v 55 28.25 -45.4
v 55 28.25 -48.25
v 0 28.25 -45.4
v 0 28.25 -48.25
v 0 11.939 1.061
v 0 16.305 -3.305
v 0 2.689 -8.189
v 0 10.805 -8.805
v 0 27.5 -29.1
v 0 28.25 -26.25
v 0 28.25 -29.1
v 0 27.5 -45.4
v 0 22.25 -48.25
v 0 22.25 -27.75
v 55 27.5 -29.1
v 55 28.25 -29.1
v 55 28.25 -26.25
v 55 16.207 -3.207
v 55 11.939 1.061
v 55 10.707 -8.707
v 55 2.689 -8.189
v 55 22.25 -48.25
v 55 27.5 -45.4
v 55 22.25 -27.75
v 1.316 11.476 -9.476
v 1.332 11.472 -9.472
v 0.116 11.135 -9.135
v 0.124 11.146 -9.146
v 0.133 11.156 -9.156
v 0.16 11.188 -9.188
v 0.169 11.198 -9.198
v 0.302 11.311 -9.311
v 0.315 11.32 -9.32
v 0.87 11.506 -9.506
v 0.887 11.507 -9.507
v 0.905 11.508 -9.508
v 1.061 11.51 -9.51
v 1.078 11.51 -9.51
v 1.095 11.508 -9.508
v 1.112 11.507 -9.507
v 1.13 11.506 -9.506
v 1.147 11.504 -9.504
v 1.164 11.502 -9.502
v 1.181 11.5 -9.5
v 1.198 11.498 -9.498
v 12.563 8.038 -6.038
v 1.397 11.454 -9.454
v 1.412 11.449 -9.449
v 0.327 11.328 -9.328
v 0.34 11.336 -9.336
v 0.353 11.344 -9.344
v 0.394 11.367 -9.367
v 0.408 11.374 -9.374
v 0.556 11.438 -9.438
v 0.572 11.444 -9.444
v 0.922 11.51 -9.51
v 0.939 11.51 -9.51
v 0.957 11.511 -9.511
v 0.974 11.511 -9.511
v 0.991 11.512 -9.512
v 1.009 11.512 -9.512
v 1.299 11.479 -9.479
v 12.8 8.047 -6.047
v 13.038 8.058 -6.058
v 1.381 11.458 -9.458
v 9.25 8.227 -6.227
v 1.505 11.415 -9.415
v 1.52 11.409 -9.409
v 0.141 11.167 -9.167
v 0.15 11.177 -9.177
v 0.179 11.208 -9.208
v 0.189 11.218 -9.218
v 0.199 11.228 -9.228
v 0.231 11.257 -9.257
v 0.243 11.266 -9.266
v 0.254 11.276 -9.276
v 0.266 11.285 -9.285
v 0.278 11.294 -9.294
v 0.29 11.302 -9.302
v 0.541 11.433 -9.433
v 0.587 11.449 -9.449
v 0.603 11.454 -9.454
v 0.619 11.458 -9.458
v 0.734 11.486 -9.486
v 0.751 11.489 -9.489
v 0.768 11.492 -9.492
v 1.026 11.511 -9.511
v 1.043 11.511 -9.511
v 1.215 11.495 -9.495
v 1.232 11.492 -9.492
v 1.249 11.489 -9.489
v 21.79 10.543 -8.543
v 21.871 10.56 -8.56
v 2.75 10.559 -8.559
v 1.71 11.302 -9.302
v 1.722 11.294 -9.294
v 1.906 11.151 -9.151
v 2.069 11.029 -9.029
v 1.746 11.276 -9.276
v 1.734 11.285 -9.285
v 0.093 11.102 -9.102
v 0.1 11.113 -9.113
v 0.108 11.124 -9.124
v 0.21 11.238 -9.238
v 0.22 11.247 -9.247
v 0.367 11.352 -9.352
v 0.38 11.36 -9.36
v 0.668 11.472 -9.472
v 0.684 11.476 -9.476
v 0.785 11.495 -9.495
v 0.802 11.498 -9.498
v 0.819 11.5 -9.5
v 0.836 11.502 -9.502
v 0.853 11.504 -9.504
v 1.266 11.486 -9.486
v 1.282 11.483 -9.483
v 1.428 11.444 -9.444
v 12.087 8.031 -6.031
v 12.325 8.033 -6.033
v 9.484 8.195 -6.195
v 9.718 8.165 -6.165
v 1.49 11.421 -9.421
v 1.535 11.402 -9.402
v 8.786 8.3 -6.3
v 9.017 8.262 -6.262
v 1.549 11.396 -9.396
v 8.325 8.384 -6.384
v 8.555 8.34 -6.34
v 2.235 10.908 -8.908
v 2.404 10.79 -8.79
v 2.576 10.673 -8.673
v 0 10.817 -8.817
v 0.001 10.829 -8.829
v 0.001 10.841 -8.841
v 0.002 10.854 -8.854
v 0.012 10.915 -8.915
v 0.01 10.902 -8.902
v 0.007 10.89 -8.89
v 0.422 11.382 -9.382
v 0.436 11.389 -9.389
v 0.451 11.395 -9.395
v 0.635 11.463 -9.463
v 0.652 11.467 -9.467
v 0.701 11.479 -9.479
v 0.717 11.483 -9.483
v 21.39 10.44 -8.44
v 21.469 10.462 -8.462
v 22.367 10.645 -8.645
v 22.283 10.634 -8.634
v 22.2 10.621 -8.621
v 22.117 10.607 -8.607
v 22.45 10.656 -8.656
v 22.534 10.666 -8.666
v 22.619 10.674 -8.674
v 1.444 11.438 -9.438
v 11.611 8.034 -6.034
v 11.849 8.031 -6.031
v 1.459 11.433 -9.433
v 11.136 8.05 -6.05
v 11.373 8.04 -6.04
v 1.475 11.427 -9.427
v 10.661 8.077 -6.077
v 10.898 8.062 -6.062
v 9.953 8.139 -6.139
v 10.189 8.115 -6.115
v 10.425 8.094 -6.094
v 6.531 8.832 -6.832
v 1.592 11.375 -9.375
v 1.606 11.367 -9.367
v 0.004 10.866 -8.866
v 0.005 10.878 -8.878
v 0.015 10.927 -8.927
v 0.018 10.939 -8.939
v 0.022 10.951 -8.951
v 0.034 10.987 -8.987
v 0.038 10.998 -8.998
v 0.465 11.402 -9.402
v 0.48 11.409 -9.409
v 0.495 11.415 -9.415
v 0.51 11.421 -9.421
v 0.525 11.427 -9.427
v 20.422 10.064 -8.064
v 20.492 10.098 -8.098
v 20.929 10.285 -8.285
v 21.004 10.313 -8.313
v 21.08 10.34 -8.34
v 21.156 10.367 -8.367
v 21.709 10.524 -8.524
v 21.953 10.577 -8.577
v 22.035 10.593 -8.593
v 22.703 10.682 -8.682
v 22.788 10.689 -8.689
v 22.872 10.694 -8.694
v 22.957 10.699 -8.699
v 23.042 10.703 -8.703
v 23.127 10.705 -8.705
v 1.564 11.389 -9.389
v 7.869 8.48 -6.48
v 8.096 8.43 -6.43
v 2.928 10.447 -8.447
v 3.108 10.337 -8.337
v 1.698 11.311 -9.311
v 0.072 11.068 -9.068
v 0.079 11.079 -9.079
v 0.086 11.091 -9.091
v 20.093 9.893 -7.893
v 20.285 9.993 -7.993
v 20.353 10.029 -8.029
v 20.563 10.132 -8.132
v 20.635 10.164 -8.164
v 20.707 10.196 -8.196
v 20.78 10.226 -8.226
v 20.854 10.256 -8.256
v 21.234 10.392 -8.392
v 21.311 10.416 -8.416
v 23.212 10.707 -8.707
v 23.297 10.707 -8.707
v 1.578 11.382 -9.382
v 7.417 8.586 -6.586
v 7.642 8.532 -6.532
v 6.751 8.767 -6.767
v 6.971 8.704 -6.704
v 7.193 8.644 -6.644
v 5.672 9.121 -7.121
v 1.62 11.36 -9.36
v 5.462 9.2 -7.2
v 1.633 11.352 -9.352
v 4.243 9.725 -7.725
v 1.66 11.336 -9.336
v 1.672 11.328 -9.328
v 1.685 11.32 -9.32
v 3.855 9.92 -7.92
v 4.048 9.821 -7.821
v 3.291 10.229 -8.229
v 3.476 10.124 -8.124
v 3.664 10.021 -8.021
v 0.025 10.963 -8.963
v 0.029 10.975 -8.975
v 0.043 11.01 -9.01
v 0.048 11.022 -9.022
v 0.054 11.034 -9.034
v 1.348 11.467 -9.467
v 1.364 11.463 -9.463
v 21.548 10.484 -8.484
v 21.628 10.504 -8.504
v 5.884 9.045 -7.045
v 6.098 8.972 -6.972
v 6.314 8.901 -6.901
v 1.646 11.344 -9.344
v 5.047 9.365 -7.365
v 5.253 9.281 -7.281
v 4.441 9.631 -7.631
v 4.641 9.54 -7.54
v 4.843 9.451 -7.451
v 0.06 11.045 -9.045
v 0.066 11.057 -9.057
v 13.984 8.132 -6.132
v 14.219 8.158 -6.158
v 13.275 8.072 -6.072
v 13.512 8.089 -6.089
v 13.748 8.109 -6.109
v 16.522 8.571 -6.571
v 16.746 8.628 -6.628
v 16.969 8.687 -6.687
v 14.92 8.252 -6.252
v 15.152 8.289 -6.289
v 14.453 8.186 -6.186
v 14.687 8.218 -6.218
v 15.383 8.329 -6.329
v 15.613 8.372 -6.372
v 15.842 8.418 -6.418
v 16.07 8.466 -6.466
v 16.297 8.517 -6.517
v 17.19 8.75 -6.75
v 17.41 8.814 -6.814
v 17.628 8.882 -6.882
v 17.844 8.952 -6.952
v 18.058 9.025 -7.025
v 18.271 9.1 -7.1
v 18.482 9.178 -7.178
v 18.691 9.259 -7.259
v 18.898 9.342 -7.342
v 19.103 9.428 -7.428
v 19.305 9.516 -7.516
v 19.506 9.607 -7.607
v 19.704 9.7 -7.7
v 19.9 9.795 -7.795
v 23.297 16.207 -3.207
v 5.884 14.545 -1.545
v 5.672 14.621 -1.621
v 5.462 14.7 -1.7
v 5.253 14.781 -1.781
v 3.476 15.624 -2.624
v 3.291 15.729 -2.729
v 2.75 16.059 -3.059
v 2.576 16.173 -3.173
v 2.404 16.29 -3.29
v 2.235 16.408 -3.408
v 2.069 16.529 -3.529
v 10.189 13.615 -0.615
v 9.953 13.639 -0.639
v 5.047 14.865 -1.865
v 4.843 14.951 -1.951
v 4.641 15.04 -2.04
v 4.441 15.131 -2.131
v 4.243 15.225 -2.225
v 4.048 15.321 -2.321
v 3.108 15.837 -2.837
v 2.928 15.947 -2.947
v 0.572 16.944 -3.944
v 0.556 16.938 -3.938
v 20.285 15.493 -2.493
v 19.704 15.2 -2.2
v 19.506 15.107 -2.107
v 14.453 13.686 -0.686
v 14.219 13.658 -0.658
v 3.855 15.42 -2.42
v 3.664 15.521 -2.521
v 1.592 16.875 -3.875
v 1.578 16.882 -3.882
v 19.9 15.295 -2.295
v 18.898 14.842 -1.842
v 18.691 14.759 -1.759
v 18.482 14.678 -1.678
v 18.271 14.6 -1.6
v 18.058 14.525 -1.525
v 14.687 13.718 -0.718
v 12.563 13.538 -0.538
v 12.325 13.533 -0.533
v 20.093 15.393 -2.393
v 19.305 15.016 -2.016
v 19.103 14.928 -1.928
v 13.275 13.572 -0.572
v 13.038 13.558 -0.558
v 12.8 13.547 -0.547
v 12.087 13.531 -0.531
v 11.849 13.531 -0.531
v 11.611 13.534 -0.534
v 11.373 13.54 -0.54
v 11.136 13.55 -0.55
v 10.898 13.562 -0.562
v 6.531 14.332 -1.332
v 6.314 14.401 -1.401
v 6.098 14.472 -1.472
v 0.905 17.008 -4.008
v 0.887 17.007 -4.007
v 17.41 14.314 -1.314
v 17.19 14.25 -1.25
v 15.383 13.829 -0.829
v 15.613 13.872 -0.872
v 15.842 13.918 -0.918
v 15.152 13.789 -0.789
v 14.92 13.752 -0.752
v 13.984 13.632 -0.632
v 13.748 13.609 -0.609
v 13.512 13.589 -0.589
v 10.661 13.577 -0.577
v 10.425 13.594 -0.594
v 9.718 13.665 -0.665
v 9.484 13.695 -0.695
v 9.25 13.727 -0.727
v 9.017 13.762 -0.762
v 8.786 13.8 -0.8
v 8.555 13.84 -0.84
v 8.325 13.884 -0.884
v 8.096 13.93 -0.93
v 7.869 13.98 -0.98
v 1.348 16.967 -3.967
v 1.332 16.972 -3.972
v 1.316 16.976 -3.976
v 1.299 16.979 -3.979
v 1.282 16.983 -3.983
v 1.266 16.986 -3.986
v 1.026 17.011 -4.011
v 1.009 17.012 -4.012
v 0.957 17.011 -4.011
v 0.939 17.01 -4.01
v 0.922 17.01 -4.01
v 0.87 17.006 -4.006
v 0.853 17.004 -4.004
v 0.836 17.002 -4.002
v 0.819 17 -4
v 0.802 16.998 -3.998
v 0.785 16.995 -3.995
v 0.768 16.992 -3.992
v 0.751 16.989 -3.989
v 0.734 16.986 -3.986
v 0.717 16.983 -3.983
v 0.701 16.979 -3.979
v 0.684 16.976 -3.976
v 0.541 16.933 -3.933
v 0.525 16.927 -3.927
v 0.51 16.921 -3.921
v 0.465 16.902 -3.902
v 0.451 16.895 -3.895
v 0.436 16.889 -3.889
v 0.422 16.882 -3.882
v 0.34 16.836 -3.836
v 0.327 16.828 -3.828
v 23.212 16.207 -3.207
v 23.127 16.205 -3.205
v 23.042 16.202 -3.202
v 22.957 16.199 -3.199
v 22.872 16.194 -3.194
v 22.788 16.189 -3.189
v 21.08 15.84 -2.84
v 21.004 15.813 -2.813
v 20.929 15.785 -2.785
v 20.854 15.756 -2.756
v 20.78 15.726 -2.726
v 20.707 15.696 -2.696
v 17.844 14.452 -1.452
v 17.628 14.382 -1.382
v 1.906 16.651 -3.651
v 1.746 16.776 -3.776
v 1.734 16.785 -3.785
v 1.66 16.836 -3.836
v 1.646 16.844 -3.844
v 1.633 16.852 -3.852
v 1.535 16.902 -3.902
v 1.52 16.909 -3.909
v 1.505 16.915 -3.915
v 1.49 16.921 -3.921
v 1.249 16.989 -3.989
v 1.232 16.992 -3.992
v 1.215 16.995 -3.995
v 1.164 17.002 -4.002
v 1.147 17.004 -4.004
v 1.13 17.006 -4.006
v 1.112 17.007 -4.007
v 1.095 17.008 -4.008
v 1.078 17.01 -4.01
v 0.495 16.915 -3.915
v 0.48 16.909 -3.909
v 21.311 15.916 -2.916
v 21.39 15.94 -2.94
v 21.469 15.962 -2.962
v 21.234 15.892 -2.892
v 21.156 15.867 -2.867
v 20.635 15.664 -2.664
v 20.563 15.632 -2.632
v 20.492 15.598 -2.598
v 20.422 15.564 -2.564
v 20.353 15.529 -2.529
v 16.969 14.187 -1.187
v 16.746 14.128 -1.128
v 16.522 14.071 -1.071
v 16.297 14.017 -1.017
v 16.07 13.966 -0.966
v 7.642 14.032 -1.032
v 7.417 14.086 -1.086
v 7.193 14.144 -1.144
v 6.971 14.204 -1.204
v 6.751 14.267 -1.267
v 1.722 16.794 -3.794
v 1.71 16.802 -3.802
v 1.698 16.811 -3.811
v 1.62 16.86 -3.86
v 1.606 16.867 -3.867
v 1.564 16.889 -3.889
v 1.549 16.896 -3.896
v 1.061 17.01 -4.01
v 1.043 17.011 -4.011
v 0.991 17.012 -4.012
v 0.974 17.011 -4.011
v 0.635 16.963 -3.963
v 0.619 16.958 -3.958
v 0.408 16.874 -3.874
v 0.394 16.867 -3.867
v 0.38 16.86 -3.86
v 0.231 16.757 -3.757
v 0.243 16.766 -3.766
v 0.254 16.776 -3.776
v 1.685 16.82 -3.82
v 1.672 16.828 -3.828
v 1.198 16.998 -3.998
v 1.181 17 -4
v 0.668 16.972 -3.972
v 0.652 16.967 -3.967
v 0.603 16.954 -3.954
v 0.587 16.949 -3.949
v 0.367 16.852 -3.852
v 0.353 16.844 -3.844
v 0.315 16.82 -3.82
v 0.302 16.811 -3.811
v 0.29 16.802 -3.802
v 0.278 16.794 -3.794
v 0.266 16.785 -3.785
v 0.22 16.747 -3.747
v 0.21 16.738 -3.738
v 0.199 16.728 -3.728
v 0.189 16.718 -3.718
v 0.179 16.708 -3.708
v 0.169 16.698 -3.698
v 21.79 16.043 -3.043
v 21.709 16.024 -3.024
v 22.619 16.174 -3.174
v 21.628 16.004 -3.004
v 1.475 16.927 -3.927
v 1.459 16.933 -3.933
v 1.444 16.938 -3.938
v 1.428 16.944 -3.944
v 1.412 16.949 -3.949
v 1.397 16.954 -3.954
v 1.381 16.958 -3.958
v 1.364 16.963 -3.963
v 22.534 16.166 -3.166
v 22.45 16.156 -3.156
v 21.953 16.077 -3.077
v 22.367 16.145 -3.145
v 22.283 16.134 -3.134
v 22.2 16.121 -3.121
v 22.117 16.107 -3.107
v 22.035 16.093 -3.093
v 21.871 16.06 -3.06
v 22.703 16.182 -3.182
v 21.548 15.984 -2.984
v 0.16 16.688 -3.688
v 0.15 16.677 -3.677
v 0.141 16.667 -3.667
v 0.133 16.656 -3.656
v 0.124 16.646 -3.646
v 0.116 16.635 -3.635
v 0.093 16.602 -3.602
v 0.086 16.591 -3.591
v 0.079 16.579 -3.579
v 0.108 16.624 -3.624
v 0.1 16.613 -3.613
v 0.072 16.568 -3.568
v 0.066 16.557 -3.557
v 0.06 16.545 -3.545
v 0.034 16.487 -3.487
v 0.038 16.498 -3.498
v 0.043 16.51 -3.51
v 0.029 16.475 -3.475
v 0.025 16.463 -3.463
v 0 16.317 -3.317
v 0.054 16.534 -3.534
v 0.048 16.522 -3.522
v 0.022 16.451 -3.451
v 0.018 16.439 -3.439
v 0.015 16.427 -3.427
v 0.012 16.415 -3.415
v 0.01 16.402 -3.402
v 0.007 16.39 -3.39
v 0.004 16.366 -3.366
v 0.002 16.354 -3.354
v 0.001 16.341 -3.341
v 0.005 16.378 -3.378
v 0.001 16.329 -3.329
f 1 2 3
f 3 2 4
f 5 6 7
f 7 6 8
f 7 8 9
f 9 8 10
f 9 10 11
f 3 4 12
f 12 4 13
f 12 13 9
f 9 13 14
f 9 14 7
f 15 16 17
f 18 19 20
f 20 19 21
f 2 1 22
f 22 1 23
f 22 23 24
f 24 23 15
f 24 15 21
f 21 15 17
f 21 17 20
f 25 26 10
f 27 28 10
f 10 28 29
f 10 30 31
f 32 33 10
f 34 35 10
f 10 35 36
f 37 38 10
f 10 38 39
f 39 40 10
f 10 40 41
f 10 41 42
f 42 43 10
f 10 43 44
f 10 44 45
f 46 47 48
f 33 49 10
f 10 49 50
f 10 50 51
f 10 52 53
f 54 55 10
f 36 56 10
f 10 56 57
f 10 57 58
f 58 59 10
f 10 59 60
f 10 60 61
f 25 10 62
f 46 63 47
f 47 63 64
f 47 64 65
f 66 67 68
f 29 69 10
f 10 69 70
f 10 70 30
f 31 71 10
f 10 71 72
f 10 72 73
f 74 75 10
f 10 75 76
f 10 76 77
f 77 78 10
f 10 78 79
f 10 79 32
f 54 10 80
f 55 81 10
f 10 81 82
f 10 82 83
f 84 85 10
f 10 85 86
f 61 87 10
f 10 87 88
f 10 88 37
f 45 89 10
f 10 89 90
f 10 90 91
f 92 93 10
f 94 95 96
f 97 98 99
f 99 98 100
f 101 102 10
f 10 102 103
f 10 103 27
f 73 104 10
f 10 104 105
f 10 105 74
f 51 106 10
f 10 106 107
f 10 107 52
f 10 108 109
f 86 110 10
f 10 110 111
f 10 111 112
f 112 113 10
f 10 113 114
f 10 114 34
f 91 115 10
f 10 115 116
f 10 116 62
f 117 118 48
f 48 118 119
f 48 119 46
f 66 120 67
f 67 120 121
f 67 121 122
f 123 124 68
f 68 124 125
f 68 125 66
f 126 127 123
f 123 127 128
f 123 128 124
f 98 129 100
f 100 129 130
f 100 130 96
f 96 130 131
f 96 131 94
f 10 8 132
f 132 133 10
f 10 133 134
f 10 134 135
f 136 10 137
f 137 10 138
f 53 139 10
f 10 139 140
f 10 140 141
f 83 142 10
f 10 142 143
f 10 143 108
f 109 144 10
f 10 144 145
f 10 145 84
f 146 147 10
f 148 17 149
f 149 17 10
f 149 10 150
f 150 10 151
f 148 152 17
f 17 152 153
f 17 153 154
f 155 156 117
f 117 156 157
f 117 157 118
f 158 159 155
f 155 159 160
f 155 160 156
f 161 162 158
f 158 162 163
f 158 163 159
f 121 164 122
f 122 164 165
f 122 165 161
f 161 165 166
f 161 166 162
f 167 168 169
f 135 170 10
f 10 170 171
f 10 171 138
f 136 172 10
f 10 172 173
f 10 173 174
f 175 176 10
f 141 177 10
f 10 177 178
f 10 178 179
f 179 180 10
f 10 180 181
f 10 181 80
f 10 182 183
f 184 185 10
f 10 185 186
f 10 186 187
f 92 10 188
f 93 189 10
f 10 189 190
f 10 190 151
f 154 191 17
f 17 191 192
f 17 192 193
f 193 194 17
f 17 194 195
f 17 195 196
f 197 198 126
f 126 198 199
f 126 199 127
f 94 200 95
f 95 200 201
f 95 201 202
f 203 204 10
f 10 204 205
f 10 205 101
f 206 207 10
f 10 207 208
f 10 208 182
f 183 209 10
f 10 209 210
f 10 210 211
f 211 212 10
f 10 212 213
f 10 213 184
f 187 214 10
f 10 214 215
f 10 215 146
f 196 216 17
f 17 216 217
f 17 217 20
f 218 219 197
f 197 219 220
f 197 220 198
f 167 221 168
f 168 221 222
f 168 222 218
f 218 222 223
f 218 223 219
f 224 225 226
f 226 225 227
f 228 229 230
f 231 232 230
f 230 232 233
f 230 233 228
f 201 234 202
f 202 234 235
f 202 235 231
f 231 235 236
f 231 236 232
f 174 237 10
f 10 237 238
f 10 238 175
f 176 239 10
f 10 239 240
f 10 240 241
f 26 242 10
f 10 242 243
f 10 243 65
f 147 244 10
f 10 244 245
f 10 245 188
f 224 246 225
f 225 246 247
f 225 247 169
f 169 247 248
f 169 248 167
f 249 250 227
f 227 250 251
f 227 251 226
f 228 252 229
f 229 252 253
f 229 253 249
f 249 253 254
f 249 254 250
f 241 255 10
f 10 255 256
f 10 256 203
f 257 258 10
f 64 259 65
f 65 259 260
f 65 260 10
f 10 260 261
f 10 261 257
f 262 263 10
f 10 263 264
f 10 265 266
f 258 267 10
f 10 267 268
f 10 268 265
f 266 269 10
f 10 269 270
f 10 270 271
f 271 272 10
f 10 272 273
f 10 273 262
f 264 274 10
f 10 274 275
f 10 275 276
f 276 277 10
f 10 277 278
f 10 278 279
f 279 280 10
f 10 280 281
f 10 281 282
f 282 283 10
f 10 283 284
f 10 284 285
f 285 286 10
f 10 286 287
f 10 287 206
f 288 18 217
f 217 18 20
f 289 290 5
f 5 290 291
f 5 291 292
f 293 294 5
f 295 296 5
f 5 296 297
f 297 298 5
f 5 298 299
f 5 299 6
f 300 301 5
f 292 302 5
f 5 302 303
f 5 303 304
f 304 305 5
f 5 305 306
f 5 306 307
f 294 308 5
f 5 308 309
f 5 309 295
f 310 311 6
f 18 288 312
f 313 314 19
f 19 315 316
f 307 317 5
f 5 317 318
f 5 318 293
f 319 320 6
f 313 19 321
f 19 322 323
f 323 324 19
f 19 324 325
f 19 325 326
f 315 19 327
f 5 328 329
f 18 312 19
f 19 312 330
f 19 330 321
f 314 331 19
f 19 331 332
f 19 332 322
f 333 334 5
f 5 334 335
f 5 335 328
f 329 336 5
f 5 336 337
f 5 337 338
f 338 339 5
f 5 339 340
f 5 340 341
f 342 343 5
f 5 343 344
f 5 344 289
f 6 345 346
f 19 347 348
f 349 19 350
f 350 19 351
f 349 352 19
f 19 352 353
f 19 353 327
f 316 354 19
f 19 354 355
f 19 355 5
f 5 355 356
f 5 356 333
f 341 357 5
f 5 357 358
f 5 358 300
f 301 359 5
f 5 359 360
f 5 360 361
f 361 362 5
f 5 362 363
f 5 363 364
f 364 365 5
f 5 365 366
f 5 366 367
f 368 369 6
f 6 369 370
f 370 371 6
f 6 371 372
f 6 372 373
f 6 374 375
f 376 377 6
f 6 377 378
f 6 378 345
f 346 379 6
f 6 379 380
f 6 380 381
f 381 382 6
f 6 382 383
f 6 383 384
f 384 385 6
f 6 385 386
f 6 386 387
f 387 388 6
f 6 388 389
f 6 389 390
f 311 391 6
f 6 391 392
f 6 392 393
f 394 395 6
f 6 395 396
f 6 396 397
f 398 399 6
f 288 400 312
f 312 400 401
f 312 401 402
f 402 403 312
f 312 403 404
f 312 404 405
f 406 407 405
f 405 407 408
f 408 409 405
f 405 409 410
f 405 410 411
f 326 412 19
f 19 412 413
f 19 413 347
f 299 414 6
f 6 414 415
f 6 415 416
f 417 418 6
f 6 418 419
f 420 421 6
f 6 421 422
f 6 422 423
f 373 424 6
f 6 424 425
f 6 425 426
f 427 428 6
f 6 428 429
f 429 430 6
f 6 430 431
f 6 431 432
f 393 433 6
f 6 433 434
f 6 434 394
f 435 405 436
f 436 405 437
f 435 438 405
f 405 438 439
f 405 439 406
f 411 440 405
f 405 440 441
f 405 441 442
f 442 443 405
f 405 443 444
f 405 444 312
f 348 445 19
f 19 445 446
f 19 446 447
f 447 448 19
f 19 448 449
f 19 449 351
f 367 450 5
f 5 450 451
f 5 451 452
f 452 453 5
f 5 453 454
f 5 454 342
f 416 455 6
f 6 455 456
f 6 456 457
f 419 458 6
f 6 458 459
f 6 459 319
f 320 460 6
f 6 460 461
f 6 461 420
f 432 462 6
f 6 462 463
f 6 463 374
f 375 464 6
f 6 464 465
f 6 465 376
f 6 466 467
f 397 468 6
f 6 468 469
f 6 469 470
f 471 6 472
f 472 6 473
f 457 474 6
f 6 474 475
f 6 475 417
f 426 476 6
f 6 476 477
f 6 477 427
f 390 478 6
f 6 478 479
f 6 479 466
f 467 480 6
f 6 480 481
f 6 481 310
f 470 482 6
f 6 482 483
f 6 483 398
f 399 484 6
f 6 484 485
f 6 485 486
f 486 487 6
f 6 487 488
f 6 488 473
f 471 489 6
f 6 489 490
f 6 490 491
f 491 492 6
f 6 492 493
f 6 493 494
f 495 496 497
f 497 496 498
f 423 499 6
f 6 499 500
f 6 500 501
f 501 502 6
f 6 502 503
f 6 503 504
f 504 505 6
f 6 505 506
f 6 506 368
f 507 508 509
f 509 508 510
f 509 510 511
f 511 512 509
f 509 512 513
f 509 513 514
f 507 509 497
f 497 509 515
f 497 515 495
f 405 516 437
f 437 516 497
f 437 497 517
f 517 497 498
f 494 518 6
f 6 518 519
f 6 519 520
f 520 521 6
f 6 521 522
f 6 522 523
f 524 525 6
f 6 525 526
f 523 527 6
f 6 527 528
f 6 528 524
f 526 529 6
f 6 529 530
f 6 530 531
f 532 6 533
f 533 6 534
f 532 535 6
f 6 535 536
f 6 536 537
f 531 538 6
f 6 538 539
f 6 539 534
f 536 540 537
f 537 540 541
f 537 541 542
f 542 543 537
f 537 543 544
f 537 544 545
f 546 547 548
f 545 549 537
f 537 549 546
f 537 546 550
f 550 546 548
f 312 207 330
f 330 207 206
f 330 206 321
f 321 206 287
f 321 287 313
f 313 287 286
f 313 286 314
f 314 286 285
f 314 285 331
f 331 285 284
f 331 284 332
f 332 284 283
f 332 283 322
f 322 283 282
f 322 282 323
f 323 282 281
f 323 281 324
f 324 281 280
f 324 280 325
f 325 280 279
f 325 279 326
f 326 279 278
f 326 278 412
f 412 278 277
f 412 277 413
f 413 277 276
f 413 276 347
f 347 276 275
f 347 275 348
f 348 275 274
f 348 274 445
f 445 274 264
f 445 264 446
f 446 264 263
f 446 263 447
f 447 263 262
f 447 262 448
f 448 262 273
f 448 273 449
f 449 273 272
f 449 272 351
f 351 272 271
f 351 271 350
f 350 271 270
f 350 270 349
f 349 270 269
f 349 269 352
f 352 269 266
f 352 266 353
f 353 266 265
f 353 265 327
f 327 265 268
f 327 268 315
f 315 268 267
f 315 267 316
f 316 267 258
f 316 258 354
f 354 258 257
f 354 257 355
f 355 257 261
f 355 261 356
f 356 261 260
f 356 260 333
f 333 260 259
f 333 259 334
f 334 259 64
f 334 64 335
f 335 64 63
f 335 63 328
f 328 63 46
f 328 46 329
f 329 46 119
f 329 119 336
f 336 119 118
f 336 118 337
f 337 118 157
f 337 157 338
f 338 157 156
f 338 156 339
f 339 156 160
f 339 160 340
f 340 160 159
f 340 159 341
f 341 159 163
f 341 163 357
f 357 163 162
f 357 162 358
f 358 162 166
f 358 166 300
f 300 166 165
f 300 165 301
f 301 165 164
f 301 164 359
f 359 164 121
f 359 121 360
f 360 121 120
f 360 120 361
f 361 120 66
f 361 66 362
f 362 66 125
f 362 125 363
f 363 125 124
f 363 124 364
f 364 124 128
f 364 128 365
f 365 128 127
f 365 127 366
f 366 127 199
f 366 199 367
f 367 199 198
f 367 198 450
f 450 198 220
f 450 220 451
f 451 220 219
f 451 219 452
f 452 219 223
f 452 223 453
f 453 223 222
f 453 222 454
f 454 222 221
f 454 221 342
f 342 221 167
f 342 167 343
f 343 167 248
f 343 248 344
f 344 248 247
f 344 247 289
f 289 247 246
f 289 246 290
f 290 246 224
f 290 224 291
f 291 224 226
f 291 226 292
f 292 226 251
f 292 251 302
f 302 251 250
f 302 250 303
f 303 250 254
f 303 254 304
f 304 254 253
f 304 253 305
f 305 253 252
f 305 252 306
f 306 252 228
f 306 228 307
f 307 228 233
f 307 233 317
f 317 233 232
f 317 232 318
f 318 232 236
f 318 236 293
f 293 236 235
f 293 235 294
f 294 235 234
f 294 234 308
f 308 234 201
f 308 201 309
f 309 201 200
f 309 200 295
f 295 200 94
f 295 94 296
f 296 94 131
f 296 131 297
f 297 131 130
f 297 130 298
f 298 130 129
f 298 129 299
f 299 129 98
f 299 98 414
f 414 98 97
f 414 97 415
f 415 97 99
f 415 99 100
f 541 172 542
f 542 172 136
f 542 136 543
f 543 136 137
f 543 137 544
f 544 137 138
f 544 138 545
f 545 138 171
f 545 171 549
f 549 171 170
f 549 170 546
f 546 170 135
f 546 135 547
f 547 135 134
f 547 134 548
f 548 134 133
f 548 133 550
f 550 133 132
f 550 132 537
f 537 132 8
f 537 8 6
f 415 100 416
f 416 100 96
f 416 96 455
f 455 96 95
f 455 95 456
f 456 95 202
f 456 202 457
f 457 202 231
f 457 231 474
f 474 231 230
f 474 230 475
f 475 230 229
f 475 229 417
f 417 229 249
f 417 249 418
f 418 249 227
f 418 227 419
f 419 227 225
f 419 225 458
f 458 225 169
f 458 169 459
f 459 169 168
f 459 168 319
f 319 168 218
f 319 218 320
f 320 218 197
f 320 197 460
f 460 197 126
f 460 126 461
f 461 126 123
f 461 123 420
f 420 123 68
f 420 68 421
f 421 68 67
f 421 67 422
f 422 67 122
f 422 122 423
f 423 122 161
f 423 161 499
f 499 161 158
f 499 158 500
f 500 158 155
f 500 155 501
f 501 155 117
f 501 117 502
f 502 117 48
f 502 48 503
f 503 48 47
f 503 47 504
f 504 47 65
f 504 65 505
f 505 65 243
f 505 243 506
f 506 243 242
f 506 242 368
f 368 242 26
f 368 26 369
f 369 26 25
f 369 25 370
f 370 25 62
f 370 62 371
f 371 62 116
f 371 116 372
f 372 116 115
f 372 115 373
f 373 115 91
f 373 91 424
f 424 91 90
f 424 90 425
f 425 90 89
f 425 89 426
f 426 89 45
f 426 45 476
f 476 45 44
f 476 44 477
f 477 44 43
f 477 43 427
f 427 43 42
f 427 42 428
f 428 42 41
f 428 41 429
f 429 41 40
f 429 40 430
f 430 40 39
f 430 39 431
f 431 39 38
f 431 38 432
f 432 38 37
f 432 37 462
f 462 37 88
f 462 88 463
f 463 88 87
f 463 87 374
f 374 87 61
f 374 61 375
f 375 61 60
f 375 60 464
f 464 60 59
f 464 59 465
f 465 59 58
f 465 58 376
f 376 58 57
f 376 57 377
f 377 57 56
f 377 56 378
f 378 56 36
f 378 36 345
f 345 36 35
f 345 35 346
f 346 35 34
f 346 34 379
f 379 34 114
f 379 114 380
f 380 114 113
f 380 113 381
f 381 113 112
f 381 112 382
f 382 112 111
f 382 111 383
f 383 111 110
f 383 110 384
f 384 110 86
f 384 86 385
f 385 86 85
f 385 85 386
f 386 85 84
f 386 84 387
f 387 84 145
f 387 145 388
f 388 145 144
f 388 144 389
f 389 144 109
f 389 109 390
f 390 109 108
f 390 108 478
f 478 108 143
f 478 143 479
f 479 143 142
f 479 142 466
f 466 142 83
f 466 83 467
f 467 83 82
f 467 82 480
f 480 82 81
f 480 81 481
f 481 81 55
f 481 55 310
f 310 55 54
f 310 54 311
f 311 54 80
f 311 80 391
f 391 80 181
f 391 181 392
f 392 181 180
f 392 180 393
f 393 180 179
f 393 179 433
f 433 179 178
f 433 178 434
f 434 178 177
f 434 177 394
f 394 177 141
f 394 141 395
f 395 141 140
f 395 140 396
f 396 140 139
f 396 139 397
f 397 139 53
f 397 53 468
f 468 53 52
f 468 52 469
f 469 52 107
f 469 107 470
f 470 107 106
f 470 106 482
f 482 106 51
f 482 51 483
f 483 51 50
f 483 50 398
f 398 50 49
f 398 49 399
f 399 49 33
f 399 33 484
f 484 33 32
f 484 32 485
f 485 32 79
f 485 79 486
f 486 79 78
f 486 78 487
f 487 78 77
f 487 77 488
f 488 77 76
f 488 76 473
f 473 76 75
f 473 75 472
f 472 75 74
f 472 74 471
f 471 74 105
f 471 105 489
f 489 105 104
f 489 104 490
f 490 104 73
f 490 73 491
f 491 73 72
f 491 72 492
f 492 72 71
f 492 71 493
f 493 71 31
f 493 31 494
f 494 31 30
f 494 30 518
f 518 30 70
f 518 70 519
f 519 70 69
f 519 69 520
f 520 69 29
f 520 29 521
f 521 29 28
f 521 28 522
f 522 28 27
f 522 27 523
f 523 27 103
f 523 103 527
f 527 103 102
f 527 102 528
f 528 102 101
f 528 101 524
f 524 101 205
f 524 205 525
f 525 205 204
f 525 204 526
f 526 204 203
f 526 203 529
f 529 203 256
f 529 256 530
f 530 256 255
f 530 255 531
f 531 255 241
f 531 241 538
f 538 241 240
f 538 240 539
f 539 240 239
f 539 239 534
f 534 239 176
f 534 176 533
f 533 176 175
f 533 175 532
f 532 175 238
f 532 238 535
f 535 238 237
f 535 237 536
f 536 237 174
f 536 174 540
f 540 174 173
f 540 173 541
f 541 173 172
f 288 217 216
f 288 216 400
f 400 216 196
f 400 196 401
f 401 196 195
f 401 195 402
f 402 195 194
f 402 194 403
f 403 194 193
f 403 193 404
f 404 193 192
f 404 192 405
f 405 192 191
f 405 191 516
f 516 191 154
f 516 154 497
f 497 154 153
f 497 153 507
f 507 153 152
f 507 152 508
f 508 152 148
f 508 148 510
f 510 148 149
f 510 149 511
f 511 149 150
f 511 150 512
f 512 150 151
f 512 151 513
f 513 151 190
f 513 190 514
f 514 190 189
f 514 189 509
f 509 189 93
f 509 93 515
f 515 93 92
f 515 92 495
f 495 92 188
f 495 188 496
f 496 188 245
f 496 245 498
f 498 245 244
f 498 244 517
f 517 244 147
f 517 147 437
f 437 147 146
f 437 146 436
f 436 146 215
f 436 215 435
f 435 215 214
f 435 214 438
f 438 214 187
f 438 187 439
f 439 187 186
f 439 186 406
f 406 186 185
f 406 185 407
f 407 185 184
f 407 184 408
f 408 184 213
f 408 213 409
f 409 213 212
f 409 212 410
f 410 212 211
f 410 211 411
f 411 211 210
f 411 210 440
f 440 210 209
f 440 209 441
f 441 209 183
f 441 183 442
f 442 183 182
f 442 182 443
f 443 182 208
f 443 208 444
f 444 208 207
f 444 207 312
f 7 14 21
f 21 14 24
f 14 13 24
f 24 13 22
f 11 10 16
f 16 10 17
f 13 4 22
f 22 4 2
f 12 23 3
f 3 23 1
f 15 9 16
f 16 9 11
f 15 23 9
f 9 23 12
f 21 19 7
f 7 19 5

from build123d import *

# Parameters (mm, degrees)
SKETCH1_W           = 55
SKETCH1_H           = 30.75
BOSS_EXTRUDE1_DEPTH = 50
CUT_EXTRUDE1_DEPTH  = 50
CUT_EXTRUDE2_DEPTH  = 81.439806688
BOSS_EXTRUDE2_REACH = 82.44
SKETCH6_R           = 13.75
CUT_EXTRUDE3_DEPTH  = 81.212608111
CUT_EXTRUDE4_DEPTH  = 81.439806688
SKETCH8_R           = 6
CUT_EXTRUDE5_DEPTH  = 72.014963212
CUT_EXTRUDE6_DEPTH  = 72.014963212
SKETCH10_W          = 55
SKETCH10_H          = 4.5
CUT_EXTRUDE7_DEPTH  = 70.055231518
FILLET5_R           = 1
FILLET6_R           = 5
CUT_EXTRUDE8_DEPTH  = 68.172352944
SKETCH17_W          = 55
SKETCH17_H          = 6
BOSS_EXTRUDE4_DEPTH = 22
BOSS_EXTRUDE5_DEPTH = 55
SKETCH19_W          = 55
SKETCH19_H          = 16.3
CUT_EXTRUDE9_DEPTH  = 0.75
BOSS_EXTRUDE6_DEPTH = 55


with BuildPart() as part:
    # Sketch1 → Boss-Extrude1 (new body)
    with BuildSketch(Plane(origin=(0, 0, 0), x_dir=(1, 0, 0), z_dir=(0, 1, 0))):
        with Locations((27.5, 15.375)):
            Rectangle(SKETCH1_W, SKETCH1_H)
    extrude(amount=BOSS_EXTRUDE1_DEPTH)

    # Sketch4 → Cut-Extrude1 (cut)
    with BuildSketch(Plane(origin=(55, 0, 0), x_dir=(0, 0, -1), z_dir=(1, 0, 0))):
        Polygon((-27.355339059, 45.355339059), (8, 80.710678119), (43.355339059, 45.355339059), (8, 10), align=None)
    extrude(amount=-CUT_EXTRUDE1_DEPTH, mode=Mode.SUBTRACT)

    # Sketch5 → Cut-Extrude2 (cut, through all)
    with BuildSketch(Plane(origin=(55, 0, 0), x_dir=(0, 0, -1), z_dir=(1, 0, 0))):
        Polygon((-11.642135624, 15.5), (-4.571067812, 22.571067812), (2.5, 15.5), (-4.571067812, 8.428932188), align=None)
    extrude(amount=-CUT_EXTRUDE2_DEPTH, mode=Mode.SUBTRACT)

    # Sketch12 → Boss-Extrude2 (add, up to next)
    with BuildSketch(Plane(origin=(55, 0, 0), x_dir=(0, 0, -1), z_dir=(1, 0, 0)), mode=Mode.PRIVATE) as boss_extrude2_sk1:
        Polygon((2.5, 15.5), (8, 10), (8.707106781, 10.707106781), (3.207106781, 16.207106781), align=None)
    boss_extrude2_tool1 = extrude(boss_extrude2_sk1.sketch, amount=-BOSS_EXTRUDE2_REACH, mode=Mode.PRIVATE) - part.part
    add(boss_extrude2_tool1.solids().sort_by_distance((55, 13.103553, -5.603553))[0])

    # Sketch6 → Cut-Extrude3 (cut, through all)
    with BuildSketch(Plane(origin=(0, 1, 1), x_dir=(1, 0, 0), z_dir=(0, 0.7071067811865515, 0.7071067811865436))):
        with Locations((12, 23.692388155)):
            Circle(SKETCH6_R)
    extrude(amount=CUT_EXTRUDE3_DEPTH, mode=Mode.SUBTRACT)

    # Sketch7 → Cut-Extrude4 (cut, through all)
    with BuildSketch(Plane(origin=(55, 0, 0), x_dir=(0, 0, -1), z_dir=(1, 0, 0))):
        Polygon((0, 13), (5.506338941, 18.506338941), (11.006338941, 13.006338941), (61, 63), (25.408423261, 63), (0, 63), align=None)
    extrude(amount=-CUT_EXTRUDE4_DEPTH, mode=Mode.SUBTRACT)

    # Sketch8 → Cut-Extrude5 (cut, through all)
    with BuildSketch(Plane(origin=(0, 0, 0), x_dir=(1, 0, 0), z_dir=(0, 1, 0))):
        with Locations((25.75, 32.25)):
            Circle(SKETCH8_R)
    extrude(amount=CUT_EXTRUDE5_DEPTH, mode=Mode.SUBTRACT)

    # Sketch9 → Cut-Extrude6 (cut, through all)
    with BuildSketch(Plane(origin=(55, 0, 0), x_dir=(0, 0, -1), z_dir=(1, 0, 0))):
        Polygon((26.25, 28.25), (30.75, 28.25), (30.75, 32.75), align=None)
    extrude(amount=-CUT_EXTRUDE6_DEPTH, mode=Mode.SUBTRACT)

    # Sketch10 → Cut-Extrude7 (cut, through all)
    with BuildSketch(Plane(origin=(0, 0, 0), x_dir=(1, 0, 0), z_dir=(0, 1, 0))):
        with Locations((27.5, 28.5)):
            Rectangle(SKETCH10_W, SKETCH10_H)
    extrude(amount=CUT_EXTRUDE7_DEPTH, mode=Mode.SUBTRACT)

    # Fillet5
    fillet5_edges = [part.edges().sort_by_distance(p)[0] for p in [
        (0, 15.756338941, -8.256338941),
    ]]
    fillet(fillet5_edges, radius=FILLET5_R)

    # Fillet6
    fillet6_edges = [part.edges().sort_by_distance(p)[0] for p in [
        (21.474804244, 13.457106781, -5.957106781),
    ]]
    fillet(fillet6_edges, radius=FILLET6_R)

    # Sketch16 → Cut-Extrude8 (cut, through all)
    with BuildSketch(Plane(origin=(55, 0, 0), x_dir=(0, 0, -1), z_dir=(1, 0, 0))):
        Polygon((26.25, 20.75), (9.25, 3.75), (0, 13), (0, 0), (26.25, 0), align=None)
    extrude(amount=-CUT_EXTRUDE8_DEPTH, mode=Mode.SUBTRACT)

    # Sketch17 → Boss-Extrude4 (add)
    with BuildSketch(Plane(origin=(0, 0, -26.25), x_dir=(-1, 0, 0), z_dir=(0, 0, -1))):
        with Locations((-27.5, 25.25)):
            Rectangle(SKETCH17_W, SKETCH17_H)
    extrude(amount=BOSS_EXTRUDE4_DEPTH)

    # Sketch18 → Boss-Extrude5 (add)
    with BuildSketch(Plane(origin=(55, 0, 0), x_dir=(0, 0, -1), z_dir=(1, 0, 0))):
        Polygon((17.75, 12.25), (33.75, 28.25), (26.25, 28.25), (14, 16), align=None)
    extrude(amount=-BOSS_EXTRUDE5_DEPTH)

    # Sketch19 → Cut-Extrude9 (cut)
    with BuildSketch(Plane(origin=(0, 28.25, 0), x_dir=(1, 0, 0), z_dir=(0, 1, 0))):
        with Locations((27.5, 37.25)):
            Rectangle(SKETCH19_W, SKETCH19_H)
    extrude(amount=-CUT_EXTRUDE9_DEPTH, mode=Mode.SUBTRACT)

    # Sketch20 → Boss-Extrude6 (add)
    with BuildSketch(Plane(origin=(55, 0, 0), x_dir=(0, 0, -1), z_dir=(1, 0, 0))):
        Polygon((0, 13), (-1.060660172, 11.939339828), (8.189339828, 2.689339828), (9.25, 3.75), align=None)
    extrude(amount=-BOSS_EXTRUDE6_DEPTH)


solid = part.part
